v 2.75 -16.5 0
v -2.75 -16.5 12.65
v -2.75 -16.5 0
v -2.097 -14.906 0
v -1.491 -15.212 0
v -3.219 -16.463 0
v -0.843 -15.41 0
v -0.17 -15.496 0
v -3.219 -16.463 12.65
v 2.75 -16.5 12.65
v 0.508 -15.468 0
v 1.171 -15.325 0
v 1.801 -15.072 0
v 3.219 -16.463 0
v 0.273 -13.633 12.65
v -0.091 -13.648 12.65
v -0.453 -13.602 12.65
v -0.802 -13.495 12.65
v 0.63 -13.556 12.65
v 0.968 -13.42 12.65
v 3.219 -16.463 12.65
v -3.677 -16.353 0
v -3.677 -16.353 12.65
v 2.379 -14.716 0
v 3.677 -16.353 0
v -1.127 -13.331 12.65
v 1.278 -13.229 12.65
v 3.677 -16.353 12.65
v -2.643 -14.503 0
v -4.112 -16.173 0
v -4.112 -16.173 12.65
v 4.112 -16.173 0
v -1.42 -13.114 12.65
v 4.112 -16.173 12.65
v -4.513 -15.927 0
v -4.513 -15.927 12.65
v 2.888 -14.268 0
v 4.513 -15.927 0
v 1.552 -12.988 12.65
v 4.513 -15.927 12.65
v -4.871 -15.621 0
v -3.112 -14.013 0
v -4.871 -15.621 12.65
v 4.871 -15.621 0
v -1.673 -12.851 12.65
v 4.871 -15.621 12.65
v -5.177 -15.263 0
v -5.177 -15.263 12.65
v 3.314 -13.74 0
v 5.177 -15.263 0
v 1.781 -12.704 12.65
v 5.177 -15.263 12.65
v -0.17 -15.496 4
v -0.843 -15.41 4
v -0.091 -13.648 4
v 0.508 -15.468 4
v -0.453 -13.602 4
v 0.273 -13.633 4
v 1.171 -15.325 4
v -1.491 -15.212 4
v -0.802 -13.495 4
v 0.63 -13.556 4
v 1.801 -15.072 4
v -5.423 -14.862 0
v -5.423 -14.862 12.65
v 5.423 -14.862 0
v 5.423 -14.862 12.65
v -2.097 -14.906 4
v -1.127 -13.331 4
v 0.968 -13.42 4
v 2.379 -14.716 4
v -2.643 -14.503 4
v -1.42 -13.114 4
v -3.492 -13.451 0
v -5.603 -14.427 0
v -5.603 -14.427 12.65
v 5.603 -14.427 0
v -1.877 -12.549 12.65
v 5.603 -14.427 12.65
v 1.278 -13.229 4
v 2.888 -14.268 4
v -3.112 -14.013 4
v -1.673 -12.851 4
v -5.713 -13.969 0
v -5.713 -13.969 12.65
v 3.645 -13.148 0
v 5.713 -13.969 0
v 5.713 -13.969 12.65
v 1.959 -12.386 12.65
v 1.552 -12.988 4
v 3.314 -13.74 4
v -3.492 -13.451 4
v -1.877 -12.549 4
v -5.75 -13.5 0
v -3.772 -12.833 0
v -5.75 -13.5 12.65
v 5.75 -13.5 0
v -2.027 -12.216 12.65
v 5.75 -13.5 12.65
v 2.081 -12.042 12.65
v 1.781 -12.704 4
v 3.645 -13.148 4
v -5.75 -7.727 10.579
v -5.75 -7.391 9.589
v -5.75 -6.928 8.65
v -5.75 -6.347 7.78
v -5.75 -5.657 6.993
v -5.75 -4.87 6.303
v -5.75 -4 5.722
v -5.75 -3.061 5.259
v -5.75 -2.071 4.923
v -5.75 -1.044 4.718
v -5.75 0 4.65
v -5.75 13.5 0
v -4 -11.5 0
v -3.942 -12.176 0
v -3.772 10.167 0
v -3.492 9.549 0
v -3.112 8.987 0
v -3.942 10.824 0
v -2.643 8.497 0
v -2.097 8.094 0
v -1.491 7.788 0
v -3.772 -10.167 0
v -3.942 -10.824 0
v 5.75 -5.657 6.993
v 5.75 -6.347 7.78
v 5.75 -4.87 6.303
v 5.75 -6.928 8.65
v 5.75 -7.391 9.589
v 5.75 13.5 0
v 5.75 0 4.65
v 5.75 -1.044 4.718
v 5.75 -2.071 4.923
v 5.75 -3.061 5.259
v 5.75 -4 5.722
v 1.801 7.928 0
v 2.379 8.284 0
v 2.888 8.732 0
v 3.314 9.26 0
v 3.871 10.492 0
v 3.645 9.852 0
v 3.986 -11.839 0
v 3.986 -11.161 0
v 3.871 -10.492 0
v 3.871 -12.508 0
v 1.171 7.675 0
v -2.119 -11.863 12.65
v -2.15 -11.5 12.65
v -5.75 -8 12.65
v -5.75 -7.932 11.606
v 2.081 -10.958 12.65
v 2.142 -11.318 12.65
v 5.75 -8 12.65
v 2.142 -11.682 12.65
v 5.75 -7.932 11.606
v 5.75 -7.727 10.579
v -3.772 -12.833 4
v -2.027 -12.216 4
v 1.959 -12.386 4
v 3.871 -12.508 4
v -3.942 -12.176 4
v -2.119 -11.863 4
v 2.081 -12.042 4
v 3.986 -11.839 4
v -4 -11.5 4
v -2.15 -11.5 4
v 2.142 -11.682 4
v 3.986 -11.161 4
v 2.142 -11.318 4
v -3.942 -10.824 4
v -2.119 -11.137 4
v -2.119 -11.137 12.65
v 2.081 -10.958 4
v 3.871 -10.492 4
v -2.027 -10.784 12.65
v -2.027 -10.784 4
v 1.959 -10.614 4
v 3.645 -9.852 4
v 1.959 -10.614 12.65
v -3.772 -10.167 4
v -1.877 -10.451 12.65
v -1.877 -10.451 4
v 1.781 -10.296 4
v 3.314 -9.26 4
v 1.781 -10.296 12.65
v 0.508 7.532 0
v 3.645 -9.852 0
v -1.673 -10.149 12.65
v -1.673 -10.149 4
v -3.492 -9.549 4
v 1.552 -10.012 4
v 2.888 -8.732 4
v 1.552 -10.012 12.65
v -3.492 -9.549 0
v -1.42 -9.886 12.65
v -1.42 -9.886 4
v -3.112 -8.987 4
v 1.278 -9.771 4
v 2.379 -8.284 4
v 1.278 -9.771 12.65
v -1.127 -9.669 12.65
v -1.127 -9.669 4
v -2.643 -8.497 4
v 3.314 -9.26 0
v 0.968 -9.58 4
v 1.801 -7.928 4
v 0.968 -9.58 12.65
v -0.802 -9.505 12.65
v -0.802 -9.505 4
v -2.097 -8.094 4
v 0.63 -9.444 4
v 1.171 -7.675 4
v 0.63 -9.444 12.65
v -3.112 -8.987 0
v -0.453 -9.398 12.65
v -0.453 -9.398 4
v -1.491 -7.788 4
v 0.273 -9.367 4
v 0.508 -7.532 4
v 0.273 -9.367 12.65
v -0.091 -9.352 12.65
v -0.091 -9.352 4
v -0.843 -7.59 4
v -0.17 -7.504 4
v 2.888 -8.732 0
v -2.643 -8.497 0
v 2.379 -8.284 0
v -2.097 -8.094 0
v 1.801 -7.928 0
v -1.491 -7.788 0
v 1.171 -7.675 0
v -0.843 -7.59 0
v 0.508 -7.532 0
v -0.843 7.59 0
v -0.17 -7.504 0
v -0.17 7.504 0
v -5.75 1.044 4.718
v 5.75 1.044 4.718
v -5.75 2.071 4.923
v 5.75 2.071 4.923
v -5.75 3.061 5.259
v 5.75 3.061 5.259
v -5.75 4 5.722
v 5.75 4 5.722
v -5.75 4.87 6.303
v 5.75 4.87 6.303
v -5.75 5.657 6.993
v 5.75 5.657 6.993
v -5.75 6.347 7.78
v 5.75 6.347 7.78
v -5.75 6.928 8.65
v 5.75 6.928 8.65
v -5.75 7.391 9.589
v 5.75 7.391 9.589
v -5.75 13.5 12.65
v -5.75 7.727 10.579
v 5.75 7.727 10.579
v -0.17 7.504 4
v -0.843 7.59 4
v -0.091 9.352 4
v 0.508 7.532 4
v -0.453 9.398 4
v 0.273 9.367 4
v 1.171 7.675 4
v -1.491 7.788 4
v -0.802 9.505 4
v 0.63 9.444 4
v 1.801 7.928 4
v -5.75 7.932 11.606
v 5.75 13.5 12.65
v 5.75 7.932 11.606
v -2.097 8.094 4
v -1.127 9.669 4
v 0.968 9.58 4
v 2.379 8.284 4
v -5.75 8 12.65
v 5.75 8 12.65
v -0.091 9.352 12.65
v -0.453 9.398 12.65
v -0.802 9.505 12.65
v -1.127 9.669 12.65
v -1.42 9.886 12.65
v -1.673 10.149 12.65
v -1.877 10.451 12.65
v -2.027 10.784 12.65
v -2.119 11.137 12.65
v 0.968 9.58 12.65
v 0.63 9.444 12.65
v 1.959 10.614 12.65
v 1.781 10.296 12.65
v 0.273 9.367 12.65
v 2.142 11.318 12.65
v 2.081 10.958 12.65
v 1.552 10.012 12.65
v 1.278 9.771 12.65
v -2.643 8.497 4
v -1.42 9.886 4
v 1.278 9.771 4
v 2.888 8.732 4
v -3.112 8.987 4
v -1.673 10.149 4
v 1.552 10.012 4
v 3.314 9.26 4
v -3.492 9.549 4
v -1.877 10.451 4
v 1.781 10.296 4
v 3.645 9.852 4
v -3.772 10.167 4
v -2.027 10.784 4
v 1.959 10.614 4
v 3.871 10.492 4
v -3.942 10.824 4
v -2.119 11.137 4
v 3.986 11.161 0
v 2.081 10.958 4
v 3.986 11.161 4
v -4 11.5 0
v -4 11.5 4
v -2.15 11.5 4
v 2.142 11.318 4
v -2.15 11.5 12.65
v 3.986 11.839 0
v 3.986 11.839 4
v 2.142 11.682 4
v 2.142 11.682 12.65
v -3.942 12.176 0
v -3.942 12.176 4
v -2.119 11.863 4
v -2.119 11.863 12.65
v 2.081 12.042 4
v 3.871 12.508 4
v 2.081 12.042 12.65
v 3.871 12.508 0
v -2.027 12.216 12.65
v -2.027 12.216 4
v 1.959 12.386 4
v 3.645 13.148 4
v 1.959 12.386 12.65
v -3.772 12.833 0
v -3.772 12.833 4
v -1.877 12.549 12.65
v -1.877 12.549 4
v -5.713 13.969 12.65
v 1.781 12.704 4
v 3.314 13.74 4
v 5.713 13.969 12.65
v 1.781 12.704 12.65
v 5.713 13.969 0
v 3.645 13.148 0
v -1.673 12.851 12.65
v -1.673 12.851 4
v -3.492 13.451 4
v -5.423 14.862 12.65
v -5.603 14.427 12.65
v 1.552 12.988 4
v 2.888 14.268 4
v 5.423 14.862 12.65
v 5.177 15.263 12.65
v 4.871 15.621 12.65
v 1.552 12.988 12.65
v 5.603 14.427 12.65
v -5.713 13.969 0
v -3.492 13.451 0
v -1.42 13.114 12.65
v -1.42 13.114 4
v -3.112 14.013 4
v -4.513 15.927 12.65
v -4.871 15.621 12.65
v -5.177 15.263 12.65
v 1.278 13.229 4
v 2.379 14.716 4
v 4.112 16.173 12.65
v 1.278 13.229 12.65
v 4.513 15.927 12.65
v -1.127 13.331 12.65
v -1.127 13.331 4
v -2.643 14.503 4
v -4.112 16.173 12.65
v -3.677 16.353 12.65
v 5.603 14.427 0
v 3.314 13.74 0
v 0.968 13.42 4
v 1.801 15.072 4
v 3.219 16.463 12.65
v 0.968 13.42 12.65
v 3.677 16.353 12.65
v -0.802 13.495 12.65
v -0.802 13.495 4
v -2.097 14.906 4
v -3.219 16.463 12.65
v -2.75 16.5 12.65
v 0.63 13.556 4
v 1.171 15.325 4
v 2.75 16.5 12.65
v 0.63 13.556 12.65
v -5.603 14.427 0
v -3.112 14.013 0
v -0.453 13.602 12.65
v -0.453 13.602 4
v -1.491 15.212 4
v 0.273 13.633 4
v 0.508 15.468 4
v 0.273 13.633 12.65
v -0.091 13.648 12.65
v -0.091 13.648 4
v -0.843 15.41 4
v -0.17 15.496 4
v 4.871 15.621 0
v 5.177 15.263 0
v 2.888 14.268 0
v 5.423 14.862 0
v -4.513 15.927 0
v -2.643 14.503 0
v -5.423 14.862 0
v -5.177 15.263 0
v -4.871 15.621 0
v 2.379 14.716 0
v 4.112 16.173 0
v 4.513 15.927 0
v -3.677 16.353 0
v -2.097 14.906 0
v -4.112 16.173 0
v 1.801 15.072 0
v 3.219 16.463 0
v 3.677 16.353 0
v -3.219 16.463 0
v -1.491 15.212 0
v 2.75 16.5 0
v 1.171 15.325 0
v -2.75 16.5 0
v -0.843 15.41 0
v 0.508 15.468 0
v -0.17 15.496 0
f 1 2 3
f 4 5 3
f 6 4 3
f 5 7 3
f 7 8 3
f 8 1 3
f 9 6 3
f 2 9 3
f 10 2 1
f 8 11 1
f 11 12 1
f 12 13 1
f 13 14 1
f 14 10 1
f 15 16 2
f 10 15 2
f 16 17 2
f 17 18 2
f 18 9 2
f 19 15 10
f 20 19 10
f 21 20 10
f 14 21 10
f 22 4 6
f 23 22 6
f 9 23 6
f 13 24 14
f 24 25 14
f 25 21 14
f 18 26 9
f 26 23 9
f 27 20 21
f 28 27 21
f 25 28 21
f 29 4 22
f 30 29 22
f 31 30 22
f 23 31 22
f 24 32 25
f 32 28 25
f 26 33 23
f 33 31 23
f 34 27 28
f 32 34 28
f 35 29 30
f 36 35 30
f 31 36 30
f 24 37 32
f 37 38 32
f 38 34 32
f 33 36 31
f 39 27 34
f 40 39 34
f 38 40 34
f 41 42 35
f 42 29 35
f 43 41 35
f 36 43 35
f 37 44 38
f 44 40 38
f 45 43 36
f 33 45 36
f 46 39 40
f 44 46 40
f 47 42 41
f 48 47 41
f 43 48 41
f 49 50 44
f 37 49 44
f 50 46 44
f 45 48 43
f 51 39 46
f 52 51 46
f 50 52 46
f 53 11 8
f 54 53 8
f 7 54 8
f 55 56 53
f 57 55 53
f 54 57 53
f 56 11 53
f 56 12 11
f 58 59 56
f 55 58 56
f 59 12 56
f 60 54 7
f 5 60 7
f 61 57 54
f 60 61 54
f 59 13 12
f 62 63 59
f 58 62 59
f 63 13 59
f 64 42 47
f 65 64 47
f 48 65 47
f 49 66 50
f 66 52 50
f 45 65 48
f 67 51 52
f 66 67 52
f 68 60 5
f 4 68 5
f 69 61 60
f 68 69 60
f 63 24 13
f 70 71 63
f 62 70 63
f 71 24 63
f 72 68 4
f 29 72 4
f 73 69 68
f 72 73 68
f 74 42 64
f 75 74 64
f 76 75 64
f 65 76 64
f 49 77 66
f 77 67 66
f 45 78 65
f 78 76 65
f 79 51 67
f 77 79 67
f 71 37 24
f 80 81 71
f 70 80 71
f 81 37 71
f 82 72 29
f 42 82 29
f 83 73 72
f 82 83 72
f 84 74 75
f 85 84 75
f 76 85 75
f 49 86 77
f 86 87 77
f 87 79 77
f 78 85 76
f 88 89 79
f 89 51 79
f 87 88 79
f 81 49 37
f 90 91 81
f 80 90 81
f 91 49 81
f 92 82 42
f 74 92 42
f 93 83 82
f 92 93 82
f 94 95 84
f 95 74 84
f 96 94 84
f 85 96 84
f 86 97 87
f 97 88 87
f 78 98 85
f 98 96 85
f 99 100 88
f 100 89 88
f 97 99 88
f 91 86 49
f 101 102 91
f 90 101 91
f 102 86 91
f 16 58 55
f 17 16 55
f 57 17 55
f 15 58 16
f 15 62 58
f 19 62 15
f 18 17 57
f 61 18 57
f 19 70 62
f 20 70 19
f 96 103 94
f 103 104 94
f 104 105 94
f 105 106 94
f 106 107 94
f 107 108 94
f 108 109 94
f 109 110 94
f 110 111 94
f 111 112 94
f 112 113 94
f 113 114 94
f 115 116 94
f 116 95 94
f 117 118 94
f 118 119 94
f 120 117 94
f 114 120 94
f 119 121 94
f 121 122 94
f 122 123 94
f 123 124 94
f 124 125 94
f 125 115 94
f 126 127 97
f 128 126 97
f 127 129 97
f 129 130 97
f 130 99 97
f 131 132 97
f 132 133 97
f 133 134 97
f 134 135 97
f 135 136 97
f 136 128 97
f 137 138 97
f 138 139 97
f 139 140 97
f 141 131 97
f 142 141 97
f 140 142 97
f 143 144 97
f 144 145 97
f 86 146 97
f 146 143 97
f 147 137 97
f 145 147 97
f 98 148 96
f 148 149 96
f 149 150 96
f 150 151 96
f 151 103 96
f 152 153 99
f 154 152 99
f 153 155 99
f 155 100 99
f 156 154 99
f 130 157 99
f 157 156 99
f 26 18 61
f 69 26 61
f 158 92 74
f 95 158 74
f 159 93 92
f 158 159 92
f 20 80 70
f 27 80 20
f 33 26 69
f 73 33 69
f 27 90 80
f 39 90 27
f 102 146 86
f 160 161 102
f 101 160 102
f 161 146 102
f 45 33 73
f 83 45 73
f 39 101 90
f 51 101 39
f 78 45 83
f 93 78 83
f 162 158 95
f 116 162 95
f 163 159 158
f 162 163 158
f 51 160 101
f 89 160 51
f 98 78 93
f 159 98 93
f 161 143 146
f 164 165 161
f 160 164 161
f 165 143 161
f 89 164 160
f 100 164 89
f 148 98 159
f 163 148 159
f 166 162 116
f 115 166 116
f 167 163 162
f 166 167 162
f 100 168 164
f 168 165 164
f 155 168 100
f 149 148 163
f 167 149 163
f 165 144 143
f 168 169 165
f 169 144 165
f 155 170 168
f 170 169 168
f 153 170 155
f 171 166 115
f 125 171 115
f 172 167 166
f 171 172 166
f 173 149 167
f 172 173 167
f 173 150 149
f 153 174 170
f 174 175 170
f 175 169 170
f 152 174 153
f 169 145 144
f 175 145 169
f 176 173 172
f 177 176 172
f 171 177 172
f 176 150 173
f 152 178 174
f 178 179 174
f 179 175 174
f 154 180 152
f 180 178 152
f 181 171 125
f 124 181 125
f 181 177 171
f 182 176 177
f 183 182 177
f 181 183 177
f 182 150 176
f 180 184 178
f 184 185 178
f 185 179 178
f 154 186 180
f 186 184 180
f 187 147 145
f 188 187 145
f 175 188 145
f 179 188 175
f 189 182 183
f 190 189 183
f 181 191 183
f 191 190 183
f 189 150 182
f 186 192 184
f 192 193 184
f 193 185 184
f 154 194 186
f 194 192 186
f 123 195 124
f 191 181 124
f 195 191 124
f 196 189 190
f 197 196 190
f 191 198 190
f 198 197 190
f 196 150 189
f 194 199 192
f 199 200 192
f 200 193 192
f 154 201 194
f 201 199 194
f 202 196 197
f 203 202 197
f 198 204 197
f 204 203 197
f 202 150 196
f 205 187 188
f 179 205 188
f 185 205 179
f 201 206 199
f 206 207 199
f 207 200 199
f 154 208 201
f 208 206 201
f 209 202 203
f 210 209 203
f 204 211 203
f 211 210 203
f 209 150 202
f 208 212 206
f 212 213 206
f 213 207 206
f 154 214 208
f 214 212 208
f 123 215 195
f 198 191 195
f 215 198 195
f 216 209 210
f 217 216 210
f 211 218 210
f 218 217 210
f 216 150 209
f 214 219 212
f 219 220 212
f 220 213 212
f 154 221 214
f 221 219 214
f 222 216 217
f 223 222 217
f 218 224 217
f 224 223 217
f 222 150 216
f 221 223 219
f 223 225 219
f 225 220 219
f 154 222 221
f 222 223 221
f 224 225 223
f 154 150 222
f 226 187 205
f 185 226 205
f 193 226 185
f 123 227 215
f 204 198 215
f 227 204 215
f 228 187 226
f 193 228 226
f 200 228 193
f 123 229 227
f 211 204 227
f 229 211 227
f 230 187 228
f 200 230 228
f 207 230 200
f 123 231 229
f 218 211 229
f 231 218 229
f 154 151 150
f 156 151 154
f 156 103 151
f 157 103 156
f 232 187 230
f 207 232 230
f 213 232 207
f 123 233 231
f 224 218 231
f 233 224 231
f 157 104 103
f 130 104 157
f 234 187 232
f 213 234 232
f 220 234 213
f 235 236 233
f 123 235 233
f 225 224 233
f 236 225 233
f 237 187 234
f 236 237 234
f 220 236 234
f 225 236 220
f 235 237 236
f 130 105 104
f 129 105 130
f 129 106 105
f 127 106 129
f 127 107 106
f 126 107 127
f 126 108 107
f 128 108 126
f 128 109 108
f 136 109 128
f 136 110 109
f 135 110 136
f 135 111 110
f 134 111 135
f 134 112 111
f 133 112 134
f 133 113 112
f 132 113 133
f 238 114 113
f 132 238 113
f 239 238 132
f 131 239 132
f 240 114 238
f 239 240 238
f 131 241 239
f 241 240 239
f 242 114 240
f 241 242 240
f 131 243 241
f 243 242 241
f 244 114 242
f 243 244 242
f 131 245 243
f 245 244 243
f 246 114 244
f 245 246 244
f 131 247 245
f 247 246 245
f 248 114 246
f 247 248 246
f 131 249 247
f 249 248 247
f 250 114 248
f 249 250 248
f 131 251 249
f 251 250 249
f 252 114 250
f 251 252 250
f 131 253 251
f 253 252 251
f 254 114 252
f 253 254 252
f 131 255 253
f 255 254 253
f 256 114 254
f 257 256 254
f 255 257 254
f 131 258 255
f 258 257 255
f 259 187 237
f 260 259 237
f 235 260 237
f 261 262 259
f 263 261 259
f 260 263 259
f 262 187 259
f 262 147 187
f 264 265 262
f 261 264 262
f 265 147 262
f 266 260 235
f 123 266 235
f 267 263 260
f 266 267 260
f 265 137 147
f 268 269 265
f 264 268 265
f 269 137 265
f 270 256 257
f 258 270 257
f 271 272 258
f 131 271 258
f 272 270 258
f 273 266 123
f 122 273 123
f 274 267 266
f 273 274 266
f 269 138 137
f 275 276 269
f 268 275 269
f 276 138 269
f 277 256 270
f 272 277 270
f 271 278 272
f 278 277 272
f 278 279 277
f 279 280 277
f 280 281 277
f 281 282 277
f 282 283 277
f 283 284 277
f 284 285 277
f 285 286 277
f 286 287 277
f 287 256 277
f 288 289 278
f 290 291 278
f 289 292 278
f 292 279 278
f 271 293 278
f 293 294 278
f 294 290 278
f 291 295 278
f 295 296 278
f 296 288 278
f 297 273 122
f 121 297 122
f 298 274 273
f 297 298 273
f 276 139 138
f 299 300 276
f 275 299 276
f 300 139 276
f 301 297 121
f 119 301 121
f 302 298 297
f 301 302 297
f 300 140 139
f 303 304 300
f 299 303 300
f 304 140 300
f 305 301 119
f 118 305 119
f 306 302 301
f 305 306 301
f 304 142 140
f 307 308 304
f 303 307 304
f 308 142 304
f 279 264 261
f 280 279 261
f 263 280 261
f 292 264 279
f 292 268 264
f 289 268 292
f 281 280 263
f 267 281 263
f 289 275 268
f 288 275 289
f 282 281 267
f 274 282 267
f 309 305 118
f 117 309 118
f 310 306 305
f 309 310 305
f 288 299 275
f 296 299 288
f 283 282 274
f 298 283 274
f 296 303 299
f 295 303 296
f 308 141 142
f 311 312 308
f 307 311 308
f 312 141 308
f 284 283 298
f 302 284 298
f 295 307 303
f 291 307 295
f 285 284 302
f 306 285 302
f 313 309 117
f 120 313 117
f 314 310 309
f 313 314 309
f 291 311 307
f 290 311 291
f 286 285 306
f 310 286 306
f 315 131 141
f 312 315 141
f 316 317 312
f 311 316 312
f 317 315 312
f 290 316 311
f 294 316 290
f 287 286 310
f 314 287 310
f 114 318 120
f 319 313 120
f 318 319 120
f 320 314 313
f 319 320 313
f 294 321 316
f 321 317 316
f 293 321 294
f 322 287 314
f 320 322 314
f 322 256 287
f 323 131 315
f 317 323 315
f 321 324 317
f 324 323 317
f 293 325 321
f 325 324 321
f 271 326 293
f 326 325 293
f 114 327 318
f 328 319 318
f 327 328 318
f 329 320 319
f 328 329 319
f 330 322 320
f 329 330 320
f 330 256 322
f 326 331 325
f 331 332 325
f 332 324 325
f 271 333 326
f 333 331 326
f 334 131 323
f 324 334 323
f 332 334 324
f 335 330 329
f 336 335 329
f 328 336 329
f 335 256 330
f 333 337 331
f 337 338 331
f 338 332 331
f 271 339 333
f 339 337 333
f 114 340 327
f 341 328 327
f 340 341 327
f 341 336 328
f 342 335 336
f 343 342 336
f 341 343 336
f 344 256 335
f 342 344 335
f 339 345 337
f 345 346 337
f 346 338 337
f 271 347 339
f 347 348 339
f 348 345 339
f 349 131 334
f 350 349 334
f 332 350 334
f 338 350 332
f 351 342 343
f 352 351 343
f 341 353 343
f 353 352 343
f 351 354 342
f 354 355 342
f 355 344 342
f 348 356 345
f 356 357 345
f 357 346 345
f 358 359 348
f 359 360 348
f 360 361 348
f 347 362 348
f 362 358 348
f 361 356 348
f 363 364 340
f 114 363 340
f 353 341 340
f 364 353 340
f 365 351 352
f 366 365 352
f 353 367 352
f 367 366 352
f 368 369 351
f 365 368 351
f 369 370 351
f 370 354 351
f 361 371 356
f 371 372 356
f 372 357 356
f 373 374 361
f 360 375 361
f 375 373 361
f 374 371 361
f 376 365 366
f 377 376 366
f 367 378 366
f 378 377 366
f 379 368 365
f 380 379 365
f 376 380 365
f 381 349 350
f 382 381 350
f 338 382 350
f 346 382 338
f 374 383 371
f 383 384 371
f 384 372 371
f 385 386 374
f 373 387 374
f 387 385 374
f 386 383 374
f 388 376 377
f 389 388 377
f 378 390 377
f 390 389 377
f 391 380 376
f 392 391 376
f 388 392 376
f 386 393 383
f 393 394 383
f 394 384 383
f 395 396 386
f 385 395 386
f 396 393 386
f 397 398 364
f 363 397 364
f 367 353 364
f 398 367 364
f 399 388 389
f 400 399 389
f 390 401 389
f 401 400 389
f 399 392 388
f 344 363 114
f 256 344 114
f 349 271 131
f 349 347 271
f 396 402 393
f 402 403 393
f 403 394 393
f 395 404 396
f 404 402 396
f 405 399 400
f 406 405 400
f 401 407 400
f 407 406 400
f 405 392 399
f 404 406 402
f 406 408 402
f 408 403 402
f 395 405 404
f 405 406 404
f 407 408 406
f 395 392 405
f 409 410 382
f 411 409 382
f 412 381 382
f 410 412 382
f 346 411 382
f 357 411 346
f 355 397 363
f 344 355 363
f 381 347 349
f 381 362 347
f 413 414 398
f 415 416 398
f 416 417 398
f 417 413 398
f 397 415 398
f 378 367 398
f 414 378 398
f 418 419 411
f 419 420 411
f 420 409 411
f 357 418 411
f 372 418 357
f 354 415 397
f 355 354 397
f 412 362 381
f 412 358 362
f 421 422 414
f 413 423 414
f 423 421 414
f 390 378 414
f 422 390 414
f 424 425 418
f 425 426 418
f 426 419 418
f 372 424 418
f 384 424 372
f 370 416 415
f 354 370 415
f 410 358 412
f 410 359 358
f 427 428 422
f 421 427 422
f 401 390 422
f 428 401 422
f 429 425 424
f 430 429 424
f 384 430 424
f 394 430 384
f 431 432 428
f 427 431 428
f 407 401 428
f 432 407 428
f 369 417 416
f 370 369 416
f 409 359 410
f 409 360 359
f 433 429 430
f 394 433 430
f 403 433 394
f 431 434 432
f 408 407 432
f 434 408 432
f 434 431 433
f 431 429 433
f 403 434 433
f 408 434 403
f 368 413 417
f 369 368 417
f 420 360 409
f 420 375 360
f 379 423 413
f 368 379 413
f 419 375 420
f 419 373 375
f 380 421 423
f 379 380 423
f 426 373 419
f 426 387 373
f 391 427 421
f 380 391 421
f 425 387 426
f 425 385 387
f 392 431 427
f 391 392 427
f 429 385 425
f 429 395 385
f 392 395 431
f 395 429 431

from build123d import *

# Parameters (mm, degrees)
SKETCH1_W                      = 11.5
SKETCH1_H                      = 33
BOSS_EXTRUDE1_DEPTH            = 12.65
FILLET1_R                      = 3
CUT_EXTRUDE1_REACH             = 25.76
CBORE_FOR_M4_SHCS1_D           = 4.3
CBORE_FOR_M4_SHCS1_CBORE_D     = 8
CBORE_FOR_M4_SHCS1_CBORE_DEPTH = 4


with BuildPart() as part:
    # Sketch1 → Boss-Extrude1 (new body)
    with BuildSketch(Plane.XY):
        Rectangle(SKETCH1_W, SKETCH1_H)
    extrude(amount=BOSS_EXTRUDE1_DEPTH)

    # Fillet1
    fillet1_edges = [part.edges().sort_by_distance(p)[0] for p in [
        (5.75, -16.5, 6.325),
        (-5.75, -16.5, 6.325),
        (-5.75, 16.5, 6.325),
        (5.75, 16.5, 6.325),
    ]]
    fillet(fillet1_edges, radius=FILLET1_R)

    # Sketch2 → Cut-Extrude1 (cut, up to next)
    with BuildSketch(Plane(origin=(5.75, 0, 0), x_dir=(0, 0, -1), z_dir=(1, 0, 0)), mode=Mode.PRIVATE) as cut_extrude1_sk1:
        with BuildLine():
            Line((-12.65, 8), (-12.65, -8))
            ThreePointArc((-12.65, -8), (-4.65, 0), (-12.65, 8))
        make_face()
    cut_extrude1_tool1 = extrude(cut_extrude1_sk1.sketch, amount=-CUT_EXTRUDE1_REACH, mode=Mode.PRIVATE) & part.part
    add(cut_extrude1_tool1.solids().sort_by_distance((5.75, 0, 9.254695))[0], mode=Mode.SUBTRACT)

    # CBORE for M4 SHCS1 (through all)
    with Locations(Plane(origin=(0, 0, 0), x_dir=(-1, 0, 0), z_dir=(0, 0, -1))):
        with Locations((0, 11.5), (0, -11.5)):
            CounterBoreHole(CBORE_FOR_M4_SHCS1_D / 2, CBORE_FOR_M4_SHCS1_CBORE_D / 2, CBORE_FOR_M4_SHCS1_CBORE_DEPTH)


solid = part.part
